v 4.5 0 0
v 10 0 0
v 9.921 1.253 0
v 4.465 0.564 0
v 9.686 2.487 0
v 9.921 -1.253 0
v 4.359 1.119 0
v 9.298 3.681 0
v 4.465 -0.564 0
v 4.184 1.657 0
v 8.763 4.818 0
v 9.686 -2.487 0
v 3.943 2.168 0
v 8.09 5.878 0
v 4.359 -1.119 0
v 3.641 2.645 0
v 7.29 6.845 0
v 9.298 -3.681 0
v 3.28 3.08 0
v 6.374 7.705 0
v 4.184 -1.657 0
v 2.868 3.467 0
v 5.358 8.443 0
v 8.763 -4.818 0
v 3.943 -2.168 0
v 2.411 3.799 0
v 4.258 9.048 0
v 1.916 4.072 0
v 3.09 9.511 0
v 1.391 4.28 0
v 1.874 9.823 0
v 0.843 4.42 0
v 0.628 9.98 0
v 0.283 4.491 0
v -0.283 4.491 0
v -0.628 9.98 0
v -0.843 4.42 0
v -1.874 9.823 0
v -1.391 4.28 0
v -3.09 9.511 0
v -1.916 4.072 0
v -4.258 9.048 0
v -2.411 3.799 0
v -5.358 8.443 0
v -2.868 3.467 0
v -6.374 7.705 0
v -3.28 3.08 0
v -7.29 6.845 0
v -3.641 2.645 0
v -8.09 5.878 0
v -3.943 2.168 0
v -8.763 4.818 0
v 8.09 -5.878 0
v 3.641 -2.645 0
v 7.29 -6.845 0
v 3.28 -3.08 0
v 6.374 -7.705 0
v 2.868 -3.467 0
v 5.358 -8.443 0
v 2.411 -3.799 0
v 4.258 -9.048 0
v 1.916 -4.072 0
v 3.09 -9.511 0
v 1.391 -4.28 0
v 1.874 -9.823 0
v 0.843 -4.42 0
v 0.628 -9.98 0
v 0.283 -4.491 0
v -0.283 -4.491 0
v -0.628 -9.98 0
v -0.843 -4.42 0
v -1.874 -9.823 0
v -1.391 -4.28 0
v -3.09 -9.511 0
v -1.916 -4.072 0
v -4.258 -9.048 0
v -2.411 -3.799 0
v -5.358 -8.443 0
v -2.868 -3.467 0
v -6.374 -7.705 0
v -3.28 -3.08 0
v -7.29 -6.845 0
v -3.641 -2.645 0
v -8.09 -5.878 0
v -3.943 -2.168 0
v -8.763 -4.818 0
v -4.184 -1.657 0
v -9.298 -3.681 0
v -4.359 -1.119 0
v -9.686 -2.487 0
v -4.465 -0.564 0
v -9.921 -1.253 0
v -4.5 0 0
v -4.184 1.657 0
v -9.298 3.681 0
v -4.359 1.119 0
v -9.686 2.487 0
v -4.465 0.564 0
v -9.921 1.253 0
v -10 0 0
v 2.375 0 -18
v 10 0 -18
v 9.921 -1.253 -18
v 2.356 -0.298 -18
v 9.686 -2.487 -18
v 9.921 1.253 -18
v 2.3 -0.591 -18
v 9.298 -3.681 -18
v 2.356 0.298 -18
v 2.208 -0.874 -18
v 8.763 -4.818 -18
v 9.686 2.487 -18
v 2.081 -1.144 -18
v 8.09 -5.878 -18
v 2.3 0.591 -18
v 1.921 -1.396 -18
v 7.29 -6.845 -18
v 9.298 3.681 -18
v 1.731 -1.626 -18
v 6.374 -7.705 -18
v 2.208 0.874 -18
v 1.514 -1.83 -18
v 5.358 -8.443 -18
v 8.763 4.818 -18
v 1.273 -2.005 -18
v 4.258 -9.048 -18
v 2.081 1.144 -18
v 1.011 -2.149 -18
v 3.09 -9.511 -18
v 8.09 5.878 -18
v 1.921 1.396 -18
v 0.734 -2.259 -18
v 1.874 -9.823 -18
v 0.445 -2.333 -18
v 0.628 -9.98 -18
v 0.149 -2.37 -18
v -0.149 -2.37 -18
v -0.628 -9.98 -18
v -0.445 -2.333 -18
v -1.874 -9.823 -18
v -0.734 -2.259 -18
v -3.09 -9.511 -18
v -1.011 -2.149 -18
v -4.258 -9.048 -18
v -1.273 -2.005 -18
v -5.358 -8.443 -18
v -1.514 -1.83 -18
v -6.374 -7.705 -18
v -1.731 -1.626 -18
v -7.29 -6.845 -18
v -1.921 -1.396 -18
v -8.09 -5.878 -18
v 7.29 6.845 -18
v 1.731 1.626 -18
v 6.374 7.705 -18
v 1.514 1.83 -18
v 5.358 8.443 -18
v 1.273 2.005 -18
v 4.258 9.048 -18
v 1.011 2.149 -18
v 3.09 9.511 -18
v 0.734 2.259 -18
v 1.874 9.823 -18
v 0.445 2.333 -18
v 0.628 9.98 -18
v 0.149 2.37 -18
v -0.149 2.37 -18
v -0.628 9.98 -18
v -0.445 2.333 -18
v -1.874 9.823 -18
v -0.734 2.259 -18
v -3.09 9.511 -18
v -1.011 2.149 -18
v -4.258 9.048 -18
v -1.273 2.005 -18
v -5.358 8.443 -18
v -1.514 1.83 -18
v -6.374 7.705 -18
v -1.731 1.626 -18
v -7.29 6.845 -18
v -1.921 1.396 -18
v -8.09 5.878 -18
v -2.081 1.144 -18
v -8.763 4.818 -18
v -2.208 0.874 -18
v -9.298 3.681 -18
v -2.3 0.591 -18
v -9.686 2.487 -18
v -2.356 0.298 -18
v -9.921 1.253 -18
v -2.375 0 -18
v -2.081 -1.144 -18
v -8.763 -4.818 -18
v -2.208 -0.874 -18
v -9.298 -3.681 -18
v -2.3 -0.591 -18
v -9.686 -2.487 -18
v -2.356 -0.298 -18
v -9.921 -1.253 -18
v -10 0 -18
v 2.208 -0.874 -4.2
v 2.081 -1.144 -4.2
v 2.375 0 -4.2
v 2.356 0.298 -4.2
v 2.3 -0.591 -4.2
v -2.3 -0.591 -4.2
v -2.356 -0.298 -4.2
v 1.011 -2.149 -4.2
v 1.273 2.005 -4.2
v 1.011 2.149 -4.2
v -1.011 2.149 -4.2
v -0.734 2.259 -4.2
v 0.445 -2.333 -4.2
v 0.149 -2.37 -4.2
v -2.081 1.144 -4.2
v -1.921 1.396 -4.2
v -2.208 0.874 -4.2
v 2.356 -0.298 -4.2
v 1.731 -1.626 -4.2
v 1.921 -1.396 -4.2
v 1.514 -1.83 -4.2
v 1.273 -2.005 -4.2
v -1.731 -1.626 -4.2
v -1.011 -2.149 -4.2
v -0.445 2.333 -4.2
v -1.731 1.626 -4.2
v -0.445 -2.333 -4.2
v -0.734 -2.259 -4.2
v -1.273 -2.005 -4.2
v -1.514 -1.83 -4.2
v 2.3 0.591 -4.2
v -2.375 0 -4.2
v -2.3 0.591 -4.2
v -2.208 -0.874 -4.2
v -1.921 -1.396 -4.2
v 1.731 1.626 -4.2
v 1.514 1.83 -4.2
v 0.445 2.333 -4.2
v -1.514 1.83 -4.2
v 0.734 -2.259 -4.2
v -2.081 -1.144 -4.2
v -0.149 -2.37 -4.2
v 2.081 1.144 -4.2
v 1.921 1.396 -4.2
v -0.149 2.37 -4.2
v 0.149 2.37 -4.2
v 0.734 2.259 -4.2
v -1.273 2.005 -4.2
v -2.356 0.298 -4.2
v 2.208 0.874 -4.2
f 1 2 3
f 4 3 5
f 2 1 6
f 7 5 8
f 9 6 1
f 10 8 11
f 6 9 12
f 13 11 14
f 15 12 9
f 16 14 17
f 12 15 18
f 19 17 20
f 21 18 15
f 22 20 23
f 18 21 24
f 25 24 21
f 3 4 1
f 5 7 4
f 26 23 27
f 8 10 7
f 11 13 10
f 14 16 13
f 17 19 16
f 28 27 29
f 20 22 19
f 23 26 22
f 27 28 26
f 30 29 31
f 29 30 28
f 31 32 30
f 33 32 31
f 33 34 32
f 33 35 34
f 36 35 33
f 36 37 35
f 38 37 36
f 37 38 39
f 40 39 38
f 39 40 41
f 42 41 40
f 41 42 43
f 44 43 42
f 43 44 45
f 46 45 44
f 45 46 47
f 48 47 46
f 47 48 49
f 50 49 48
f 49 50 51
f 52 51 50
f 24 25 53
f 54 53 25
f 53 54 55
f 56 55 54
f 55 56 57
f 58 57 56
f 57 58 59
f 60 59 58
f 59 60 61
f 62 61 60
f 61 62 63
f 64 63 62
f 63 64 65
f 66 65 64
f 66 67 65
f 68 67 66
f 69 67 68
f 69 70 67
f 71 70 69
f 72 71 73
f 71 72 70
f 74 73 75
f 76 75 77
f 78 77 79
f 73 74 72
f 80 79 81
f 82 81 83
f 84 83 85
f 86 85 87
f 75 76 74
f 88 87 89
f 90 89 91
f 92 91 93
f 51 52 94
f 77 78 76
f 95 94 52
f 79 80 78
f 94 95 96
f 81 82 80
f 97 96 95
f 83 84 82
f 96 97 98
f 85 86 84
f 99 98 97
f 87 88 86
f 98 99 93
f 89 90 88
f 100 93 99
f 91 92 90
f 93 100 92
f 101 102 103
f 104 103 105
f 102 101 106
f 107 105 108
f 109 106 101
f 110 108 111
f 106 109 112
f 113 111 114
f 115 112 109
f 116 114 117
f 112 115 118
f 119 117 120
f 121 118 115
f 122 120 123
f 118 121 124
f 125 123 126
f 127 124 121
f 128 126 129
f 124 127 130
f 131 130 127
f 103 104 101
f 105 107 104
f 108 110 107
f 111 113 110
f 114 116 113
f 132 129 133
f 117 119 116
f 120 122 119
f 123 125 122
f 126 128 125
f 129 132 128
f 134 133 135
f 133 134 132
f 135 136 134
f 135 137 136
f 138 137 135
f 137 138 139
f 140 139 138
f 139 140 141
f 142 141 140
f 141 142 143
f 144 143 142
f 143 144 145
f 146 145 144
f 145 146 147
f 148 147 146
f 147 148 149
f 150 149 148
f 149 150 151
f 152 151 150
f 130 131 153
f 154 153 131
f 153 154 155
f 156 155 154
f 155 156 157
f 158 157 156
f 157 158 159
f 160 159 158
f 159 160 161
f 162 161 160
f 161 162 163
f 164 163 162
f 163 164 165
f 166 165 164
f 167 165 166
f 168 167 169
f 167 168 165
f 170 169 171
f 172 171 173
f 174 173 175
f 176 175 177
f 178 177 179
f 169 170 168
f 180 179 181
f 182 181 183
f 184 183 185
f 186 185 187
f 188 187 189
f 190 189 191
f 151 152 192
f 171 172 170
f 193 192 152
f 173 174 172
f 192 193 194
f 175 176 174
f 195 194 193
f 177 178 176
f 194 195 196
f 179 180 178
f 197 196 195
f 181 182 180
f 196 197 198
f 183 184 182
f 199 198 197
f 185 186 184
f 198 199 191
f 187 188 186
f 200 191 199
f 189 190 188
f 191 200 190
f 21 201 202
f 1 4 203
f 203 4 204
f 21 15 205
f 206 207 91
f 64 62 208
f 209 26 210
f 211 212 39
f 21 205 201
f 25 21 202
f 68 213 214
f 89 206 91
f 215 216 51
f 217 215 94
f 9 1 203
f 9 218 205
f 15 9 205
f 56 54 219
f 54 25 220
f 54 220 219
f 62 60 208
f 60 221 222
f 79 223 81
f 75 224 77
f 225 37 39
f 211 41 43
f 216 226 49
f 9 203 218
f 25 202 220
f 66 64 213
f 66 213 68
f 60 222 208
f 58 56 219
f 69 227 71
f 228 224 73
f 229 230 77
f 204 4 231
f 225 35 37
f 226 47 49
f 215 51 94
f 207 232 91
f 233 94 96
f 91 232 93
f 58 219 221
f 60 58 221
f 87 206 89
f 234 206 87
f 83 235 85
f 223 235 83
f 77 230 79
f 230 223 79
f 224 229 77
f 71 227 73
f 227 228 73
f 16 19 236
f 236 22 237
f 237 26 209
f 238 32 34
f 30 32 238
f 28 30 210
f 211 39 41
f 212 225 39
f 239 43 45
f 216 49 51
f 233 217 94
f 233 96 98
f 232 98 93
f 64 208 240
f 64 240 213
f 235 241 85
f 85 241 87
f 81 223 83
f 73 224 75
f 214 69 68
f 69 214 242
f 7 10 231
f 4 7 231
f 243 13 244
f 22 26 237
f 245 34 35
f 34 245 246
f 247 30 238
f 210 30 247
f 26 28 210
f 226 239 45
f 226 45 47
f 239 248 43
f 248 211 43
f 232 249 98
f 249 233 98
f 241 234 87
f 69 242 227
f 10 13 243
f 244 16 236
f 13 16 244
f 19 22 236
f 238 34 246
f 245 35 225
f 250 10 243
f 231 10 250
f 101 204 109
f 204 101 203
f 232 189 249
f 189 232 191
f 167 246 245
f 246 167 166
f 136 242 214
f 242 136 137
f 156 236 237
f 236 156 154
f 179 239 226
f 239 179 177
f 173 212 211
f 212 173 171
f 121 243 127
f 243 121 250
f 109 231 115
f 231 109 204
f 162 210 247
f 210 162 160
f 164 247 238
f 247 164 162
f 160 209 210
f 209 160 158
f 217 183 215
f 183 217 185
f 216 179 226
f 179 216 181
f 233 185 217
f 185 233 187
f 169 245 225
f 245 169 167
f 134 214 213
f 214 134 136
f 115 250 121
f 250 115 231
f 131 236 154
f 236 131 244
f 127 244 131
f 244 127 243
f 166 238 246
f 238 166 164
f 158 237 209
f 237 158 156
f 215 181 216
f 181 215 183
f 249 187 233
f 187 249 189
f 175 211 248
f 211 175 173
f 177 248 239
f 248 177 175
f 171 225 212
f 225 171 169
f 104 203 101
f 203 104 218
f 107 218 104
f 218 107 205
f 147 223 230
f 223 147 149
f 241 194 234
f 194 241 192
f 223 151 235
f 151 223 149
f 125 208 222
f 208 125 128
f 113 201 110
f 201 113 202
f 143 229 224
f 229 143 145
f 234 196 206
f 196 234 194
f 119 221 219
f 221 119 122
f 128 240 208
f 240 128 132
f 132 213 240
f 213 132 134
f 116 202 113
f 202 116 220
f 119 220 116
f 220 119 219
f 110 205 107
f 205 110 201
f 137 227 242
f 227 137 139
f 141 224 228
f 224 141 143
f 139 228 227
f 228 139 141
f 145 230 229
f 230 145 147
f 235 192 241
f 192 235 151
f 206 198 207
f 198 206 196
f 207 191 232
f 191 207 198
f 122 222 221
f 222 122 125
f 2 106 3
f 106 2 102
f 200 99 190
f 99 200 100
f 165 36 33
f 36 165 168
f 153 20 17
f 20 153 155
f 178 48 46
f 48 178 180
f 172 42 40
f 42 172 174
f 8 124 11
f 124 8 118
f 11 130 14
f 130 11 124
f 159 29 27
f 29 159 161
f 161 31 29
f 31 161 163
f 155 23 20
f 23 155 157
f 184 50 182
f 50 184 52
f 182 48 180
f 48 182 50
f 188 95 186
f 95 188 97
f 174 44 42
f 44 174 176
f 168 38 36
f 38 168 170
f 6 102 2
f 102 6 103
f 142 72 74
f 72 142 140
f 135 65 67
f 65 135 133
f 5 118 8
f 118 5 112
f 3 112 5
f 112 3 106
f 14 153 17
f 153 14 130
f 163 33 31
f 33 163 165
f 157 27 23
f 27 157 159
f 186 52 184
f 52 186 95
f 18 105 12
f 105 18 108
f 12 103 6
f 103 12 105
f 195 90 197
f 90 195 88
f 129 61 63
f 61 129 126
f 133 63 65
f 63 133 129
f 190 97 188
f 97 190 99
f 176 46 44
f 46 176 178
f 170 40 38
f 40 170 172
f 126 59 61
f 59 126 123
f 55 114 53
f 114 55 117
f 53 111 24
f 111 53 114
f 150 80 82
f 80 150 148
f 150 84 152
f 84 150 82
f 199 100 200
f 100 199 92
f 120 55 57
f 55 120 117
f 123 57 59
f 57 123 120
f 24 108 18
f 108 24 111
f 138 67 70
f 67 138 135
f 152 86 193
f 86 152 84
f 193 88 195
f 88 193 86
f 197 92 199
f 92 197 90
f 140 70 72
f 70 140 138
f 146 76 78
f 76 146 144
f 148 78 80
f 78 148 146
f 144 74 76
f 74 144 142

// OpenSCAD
$fn = 50;


difference() {
	union() {
		translate(v = [0, 0, -18.0000000000]) {
			cylinder(h = 18, r = 10.0000000000);
		}
	}
	union() {
		translate(v = [0, 0, 0]) {
			rotate(a = [0, 0, 0]) {
				difference() {
					union() {
						#translate(v = [0, 0, -18.0000000000]) {
							cylinder(h = 18, r = 2.2500000000);
						}
						#translate(v = [0, 0, -4.2000000000]) {
							cylinder(h = 4.2000000000, r1 = 2.3750000000, r2 = 4.5000000000);
						}
						#translate(v = [0, 0, -18.0000000000]) {
							cylinder(h = 18, r = 2.3750000000);
						}
						#translate(v = [0, 0, -18.0000000000]) {
							cylinder(h = 18, r = 2.2500000000);
						}
					}
					union();
				}
			}
		}
	}
}
